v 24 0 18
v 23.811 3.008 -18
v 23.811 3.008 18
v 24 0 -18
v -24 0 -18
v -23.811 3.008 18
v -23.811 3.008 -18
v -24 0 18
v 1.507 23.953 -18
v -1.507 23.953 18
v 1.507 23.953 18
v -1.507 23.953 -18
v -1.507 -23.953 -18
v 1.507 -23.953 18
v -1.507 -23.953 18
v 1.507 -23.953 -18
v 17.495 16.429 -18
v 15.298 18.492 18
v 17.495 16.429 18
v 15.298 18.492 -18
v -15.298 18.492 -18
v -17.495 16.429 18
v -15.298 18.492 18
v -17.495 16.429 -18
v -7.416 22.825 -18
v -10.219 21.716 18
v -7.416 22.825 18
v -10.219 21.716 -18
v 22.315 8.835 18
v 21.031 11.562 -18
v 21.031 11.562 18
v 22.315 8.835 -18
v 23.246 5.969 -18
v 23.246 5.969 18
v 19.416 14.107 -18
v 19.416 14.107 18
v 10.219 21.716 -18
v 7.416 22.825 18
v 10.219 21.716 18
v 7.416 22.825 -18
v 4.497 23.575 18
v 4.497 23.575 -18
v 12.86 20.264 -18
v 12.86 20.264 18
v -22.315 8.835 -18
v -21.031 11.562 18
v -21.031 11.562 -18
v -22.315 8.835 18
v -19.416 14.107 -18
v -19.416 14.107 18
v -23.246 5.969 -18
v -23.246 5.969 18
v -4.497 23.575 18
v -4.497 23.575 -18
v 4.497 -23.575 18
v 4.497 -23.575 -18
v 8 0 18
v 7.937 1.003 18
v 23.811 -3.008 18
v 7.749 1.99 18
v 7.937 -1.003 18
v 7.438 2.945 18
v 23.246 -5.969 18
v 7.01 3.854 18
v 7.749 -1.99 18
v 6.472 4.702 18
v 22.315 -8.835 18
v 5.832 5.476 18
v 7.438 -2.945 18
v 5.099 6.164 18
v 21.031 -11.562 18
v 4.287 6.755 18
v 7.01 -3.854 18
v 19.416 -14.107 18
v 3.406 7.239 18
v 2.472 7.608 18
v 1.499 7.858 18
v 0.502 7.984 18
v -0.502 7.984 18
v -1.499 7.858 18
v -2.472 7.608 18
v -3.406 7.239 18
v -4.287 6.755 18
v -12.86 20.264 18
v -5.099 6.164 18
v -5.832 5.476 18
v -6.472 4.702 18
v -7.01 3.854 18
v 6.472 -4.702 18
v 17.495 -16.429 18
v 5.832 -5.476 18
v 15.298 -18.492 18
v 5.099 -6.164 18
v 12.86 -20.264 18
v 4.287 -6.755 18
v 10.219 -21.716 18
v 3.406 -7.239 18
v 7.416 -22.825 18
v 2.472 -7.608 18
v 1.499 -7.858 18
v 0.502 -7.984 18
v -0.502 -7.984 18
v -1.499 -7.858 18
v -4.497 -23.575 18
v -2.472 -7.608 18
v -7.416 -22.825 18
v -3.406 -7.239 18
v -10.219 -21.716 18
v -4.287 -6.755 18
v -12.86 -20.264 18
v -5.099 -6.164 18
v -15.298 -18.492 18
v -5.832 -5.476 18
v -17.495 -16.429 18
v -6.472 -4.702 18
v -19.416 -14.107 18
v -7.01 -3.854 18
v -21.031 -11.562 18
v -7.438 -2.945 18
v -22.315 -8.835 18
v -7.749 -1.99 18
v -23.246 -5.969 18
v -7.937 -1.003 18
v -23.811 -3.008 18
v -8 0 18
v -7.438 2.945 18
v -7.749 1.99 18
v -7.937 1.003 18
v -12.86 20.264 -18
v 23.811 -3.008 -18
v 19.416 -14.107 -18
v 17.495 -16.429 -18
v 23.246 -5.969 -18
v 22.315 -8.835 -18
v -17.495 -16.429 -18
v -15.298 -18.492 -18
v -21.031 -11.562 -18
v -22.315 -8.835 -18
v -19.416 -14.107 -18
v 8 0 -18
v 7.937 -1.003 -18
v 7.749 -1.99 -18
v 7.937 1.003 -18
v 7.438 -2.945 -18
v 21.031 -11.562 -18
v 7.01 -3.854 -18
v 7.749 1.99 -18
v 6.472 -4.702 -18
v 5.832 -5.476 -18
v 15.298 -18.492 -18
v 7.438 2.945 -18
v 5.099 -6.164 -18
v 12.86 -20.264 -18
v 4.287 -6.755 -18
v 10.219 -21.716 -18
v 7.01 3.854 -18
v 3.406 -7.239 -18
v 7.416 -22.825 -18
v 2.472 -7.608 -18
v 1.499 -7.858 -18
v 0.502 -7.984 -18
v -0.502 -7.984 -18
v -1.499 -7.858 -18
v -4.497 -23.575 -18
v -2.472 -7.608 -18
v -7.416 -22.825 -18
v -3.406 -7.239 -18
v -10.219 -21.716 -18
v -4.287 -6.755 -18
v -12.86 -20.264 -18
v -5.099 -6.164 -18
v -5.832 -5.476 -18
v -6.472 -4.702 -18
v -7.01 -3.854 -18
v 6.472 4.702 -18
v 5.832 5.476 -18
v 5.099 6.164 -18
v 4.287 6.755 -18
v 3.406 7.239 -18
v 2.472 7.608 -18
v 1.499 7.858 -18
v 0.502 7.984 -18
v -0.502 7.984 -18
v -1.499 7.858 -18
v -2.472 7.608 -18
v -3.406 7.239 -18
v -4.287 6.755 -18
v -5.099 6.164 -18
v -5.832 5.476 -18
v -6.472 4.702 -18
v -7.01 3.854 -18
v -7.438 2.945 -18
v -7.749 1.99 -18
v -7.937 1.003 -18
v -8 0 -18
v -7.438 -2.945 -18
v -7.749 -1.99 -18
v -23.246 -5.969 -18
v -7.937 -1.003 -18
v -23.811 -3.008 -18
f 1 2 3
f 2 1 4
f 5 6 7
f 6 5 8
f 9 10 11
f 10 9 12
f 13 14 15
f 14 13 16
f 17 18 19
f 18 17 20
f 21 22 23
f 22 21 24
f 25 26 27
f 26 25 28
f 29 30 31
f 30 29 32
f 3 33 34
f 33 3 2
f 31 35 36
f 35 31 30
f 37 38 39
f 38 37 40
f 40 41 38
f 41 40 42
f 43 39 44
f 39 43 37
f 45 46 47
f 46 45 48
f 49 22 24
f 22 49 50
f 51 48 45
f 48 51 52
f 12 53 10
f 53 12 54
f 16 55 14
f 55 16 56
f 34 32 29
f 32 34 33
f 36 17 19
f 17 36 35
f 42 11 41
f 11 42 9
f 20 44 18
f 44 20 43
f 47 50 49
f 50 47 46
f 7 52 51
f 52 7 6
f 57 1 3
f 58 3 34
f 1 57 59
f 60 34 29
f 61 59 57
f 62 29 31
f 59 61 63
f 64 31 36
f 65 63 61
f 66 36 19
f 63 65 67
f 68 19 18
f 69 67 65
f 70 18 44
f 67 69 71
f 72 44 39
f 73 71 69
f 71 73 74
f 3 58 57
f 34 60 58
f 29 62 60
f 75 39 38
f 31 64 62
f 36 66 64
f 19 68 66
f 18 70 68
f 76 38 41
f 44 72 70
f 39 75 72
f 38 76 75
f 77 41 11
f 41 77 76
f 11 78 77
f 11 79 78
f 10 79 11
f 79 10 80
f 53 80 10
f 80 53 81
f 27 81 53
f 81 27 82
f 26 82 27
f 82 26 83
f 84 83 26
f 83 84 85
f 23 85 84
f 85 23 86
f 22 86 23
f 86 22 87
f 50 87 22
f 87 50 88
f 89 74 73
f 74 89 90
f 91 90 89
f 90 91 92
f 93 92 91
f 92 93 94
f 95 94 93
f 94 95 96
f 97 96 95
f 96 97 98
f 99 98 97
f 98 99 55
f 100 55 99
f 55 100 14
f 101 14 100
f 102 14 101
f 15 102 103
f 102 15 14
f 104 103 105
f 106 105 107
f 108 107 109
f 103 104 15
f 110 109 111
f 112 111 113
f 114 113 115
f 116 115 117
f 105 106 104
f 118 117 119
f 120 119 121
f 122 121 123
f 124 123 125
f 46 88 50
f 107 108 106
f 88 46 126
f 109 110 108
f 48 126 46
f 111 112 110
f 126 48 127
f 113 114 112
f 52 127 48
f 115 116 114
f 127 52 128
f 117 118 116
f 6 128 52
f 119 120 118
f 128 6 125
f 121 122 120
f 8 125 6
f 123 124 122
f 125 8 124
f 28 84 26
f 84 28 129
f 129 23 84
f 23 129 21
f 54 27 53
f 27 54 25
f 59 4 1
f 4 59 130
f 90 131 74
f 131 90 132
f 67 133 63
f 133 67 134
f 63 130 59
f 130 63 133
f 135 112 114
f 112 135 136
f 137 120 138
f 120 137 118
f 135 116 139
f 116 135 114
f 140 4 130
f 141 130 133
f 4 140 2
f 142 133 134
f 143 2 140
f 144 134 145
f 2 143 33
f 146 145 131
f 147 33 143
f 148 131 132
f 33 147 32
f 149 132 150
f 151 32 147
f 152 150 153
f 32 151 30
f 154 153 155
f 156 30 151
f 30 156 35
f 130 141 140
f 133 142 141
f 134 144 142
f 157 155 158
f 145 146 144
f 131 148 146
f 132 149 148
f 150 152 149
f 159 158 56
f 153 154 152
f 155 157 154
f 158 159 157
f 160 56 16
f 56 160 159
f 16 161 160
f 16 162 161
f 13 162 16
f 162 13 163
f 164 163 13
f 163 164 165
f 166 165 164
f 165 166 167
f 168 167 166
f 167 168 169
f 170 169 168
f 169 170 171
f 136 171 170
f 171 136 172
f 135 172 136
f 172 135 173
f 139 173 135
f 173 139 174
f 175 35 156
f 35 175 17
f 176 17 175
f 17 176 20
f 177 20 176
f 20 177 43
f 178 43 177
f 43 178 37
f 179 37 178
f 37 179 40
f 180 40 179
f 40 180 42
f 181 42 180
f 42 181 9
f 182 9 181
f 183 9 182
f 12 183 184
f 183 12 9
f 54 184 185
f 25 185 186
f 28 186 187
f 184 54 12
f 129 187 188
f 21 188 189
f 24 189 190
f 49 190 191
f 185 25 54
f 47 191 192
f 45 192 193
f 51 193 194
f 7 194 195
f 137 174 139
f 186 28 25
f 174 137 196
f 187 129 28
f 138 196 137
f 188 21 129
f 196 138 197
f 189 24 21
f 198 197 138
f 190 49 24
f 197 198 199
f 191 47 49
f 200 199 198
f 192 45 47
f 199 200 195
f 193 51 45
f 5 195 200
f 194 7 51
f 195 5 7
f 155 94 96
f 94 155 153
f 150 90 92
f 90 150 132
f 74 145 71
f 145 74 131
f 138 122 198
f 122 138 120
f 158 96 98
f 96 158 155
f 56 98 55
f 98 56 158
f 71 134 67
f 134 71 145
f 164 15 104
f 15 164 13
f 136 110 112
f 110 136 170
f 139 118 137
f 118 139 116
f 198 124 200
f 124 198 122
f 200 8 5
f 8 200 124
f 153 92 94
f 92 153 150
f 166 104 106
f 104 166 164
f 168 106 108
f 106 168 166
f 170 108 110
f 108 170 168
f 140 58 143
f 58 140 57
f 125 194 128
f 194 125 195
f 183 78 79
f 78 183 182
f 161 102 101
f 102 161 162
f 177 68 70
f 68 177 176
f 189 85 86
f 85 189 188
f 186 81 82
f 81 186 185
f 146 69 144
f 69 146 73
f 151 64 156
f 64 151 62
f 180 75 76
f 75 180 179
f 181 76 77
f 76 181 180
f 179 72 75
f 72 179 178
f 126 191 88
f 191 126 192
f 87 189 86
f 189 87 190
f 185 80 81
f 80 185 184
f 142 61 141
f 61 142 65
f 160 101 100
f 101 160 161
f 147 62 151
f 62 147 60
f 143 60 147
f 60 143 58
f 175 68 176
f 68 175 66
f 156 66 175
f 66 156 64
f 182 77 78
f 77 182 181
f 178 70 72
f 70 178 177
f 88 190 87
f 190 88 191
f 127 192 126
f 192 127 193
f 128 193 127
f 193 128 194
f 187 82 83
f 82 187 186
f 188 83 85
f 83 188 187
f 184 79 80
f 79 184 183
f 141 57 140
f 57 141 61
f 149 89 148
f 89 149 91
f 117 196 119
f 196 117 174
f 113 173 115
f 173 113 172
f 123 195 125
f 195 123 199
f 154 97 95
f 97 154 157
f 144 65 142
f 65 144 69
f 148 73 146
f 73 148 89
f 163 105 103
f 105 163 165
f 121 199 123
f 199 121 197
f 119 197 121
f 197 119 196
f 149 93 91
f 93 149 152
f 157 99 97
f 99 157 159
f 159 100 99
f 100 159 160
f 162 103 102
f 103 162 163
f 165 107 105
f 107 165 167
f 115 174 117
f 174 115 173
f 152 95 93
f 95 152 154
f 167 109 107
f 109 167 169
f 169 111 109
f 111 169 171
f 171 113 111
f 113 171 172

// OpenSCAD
$fn = 50;


difference() {
	union() {
		translate(v = [0, 0, -18.0000000000]) {
			cylinder(h = 36, r = 24.0000000000);
		}
	}
	union() {
		translate(v = [0, 0, -100.0000000000]) {
			cylinder(h = 200, r = 8);
		}
	}
}
